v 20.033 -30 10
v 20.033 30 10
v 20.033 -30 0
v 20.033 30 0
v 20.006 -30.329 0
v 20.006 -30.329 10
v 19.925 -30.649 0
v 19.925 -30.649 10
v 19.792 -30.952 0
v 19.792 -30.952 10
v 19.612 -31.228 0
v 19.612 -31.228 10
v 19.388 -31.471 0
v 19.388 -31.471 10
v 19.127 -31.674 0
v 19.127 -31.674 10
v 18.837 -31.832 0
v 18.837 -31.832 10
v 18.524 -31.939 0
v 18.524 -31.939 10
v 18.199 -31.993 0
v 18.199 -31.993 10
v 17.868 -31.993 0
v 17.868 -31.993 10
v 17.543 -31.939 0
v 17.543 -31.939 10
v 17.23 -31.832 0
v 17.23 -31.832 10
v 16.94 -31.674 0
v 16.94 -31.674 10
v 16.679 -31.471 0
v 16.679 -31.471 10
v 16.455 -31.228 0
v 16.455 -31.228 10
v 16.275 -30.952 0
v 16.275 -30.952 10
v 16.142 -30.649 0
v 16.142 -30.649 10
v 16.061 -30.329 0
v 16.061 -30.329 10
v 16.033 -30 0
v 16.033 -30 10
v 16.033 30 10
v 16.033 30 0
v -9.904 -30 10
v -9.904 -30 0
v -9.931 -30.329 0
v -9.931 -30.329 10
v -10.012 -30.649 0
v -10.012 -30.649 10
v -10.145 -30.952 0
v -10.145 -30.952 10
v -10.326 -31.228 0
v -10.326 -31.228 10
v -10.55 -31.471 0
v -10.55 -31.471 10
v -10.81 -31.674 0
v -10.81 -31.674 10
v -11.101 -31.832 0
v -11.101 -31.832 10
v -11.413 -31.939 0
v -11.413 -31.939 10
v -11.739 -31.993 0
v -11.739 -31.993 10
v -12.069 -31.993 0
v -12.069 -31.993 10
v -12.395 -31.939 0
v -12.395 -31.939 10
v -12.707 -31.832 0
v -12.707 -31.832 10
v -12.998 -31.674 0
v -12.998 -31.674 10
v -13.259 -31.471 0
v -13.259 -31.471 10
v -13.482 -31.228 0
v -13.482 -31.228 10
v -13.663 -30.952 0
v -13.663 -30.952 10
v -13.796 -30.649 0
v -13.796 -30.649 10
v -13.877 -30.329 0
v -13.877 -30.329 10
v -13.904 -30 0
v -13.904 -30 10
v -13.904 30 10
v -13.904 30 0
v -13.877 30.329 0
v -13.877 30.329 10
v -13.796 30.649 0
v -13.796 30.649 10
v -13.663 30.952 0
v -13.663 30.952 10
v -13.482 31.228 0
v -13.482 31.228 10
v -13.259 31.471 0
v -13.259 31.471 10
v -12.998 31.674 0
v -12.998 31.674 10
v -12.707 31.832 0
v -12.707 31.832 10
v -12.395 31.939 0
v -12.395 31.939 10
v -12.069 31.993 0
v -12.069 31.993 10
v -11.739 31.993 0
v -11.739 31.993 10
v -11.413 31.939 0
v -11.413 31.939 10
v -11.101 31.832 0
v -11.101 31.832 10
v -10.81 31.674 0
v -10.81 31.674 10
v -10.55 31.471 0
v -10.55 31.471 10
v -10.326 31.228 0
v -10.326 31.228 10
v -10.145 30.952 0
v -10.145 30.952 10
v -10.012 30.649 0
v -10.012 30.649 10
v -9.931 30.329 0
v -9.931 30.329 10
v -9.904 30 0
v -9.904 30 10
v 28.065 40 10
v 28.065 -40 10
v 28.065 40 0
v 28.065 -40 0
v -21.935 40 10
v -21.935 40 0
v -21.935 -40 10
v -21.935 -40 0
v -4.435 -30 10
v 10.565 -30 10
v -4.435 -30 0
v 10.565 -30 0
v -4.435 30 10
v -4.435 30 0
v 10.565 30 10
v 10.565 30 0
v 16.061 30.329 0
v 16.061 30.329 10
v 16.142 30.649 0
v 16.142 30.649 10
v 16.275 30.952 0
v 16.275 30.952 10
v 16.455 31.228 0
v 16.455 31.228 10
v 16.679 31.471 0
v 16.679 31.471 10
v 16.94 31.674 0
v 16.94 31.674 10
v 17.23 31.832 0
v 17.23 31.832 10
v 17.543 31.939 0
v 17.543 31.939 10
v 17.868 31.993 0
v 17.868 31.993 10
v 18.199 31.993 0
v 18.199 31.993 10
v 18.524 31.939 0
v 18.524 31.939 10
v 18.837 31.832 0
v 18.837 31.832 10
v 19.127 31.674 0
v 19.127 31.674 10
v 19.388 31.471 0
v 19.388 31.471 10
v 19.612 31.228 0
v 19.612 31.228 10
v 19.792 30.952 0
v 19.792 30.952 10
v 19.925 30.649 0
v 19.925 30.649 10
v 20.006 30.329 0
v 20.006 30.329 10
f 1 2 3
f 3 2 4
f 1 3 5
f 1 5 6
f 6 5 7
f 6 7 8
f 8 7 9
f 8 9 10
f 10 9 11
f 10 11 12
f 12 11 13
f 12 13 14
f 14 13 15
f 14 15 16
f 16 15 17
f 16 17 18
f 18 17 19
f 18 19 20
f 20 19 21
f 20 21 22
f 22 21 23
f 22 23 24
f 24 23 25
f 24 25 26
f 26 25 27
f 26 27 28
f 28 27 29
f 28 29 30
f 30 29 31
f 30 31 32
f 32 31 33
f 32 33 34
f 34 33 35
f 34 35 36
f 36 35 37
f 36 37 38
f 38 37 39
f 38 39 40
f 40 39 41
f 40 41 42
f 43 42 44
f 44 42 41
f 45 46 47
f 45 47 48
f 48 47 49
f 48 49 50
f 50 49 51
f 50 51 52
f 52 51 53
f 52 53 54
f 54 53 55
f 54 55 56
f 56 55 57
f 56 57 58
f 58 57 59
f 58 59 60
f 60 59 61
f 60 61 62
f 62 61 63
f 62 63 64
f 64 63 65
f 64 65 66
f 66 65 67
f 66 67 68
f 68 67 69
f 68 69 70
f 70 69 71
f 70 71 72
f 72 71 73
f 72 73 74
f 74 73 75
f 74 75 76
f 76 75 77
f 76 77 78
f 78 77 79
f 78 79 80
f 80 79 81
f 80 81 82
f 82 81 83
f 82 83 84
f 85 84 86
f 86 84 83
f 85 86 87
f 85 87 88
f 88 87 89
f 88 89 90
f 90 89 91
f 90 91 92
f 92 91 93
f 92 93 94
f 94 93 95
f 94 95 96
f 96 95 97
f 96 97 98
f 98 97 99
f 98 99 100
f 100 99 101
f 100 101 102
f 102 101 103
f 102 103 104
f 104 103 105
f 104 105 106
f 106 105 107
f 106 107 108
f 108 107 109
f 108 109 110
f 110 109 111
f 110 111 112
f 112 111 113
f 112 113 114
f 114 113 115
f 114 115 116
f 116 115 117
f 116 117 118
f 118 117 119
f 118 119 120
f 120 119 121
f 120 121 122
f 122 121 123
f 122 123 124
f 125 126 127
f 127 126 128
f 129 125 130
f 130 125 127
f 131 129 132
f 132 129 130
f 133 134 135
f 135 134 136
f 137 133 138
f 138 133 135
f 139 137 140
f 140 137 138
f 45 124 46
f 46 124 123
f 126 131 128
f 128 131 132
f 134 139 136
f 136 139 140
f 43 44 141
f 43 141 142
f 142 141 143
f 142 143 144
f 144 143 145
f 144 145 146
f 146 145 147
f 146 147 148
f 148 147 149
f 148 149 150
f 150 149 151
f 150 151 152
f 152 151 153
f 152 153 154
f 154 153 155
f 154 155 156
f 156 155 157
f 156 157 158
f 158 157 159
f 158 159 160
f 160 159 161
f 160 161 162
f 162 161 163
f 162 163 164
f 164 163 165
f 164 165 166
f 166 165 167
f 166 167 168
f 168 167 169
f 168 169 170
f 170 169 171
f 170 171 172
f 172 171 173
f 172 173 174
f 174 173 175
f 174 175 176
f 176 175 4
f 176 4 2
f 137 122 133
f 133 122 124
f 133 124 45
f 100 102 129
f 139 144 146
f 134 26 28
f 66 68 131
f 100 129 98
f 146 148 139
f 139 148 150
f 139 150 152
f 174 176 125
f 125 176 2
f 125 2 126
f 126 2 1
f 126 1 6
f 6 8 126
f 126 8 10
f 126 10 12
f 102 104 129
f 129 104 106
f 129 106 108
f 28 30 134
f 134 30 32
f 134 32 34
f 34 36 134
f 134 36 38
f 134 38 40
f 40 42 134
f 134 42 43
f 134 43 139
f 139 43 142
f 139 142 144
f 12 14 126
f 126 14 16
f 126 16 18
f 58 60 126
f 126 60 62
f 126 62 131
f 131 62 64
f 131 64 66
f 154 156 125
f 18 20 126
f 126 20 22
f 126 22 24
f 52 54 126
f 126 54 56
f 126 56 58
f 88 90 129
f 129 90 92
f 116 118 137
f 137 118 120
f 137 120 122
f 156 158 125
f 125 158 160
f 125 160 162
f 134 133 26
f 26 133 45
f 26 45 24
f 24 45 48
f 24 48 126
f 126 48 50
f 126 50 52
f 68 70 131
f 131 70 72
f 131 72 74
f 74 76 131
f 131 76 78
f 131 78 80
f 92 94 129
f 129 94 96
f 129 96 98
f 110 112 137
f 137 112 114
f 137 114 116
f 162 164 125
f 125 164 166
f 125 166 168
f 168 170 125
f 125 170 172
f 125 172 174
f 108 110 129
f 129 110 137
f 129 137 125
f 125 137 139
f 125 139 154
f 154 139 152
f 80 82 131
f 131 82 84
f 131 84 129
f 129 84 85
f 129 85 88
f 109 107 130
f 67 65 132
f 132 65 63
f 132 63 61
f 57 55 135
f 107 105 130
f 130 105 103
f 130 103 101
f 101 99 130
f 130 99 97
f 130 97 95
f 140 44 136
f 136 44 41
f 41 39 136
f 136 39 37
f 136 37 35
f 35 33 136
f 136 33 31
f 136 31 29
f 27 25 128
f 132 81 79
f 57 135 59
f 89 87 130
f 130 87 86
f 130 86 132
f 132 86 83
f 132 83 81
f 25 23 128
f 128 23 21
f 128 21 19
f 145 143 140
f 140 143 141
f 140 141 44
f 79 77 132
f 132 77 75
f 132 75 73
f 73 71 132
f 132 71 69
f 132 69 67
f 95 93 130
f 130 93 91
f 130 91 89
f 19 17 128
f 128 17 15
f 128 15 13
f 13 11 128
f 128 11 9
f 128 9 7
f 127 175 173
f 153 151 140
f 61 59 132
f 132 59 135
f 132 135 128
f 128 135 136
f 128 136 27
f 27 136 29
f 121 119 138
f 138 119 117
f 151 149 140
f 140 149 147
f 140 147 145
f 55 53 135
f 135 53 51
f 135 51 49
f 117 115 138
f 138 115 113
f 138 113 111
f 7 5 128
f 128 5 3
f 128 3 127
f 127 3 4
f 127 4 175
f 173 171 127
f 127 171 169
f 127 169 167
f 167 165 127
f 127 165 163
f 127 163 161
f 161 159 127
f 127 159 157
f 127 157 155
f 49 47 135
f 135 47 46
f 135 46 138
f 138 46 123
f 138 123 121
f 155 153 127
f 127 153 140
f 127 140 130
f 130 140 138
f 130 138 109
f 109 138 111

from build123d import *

# Parameters (mm, degrees)
ESQUISSE1_W        = 50
ESQUISSE1_H        = 80
BOSS_EXTRU_1_DEPTH = 10


with BuildPart() as part:
    # Esquisse1 → Boss.-Extru.1 (new body)
    with BuildSketch(Plane.XY):
        with Locations((3.064709519, 0)):
            Rectangle(ESQUISSE1_W, ESQUISSE1_H)
        with BuildLine():
            Line((-13.904077664, -30), (-13.904077664, 30))
            ThreePointArc((-13.904077664, 30), (-11.904077664, 32), (-9.904077664, 30))
            Line((-9.904077664, 30), (-9.904077664, -30))
            ThreePointArc((-9.904077664, -30), (-11.904077664, -32), (-13.904077664, -30))
        make_face(mode=Mode.SUBTRACT)
        Polygon((-4.435290481, -30), (-4.435290481, 0), (-4.435290481, 30), (10.564709519, 30), (10.564709519, 0), (10.564709519, -30), align=None, mode=Mode.SUBTRACT)
        with BuildLine():
            Line((16.033496703, -30), (16.033496703, 30))
            ThreePointArc((16.033496703, 30), (18.033496703, 32), (20.033496703, 30))
            Line((20.033496703, 30), (20.033496703, -30))
            ThreePointArc((20.033496703, -30), (18.033496703, -32), (16.033496703, -30))
        make_face(mode=Mode.SUBTRACT)
    extrude(amount=BOSS_EXTRU_1_DEPTH)


solid = part.part
